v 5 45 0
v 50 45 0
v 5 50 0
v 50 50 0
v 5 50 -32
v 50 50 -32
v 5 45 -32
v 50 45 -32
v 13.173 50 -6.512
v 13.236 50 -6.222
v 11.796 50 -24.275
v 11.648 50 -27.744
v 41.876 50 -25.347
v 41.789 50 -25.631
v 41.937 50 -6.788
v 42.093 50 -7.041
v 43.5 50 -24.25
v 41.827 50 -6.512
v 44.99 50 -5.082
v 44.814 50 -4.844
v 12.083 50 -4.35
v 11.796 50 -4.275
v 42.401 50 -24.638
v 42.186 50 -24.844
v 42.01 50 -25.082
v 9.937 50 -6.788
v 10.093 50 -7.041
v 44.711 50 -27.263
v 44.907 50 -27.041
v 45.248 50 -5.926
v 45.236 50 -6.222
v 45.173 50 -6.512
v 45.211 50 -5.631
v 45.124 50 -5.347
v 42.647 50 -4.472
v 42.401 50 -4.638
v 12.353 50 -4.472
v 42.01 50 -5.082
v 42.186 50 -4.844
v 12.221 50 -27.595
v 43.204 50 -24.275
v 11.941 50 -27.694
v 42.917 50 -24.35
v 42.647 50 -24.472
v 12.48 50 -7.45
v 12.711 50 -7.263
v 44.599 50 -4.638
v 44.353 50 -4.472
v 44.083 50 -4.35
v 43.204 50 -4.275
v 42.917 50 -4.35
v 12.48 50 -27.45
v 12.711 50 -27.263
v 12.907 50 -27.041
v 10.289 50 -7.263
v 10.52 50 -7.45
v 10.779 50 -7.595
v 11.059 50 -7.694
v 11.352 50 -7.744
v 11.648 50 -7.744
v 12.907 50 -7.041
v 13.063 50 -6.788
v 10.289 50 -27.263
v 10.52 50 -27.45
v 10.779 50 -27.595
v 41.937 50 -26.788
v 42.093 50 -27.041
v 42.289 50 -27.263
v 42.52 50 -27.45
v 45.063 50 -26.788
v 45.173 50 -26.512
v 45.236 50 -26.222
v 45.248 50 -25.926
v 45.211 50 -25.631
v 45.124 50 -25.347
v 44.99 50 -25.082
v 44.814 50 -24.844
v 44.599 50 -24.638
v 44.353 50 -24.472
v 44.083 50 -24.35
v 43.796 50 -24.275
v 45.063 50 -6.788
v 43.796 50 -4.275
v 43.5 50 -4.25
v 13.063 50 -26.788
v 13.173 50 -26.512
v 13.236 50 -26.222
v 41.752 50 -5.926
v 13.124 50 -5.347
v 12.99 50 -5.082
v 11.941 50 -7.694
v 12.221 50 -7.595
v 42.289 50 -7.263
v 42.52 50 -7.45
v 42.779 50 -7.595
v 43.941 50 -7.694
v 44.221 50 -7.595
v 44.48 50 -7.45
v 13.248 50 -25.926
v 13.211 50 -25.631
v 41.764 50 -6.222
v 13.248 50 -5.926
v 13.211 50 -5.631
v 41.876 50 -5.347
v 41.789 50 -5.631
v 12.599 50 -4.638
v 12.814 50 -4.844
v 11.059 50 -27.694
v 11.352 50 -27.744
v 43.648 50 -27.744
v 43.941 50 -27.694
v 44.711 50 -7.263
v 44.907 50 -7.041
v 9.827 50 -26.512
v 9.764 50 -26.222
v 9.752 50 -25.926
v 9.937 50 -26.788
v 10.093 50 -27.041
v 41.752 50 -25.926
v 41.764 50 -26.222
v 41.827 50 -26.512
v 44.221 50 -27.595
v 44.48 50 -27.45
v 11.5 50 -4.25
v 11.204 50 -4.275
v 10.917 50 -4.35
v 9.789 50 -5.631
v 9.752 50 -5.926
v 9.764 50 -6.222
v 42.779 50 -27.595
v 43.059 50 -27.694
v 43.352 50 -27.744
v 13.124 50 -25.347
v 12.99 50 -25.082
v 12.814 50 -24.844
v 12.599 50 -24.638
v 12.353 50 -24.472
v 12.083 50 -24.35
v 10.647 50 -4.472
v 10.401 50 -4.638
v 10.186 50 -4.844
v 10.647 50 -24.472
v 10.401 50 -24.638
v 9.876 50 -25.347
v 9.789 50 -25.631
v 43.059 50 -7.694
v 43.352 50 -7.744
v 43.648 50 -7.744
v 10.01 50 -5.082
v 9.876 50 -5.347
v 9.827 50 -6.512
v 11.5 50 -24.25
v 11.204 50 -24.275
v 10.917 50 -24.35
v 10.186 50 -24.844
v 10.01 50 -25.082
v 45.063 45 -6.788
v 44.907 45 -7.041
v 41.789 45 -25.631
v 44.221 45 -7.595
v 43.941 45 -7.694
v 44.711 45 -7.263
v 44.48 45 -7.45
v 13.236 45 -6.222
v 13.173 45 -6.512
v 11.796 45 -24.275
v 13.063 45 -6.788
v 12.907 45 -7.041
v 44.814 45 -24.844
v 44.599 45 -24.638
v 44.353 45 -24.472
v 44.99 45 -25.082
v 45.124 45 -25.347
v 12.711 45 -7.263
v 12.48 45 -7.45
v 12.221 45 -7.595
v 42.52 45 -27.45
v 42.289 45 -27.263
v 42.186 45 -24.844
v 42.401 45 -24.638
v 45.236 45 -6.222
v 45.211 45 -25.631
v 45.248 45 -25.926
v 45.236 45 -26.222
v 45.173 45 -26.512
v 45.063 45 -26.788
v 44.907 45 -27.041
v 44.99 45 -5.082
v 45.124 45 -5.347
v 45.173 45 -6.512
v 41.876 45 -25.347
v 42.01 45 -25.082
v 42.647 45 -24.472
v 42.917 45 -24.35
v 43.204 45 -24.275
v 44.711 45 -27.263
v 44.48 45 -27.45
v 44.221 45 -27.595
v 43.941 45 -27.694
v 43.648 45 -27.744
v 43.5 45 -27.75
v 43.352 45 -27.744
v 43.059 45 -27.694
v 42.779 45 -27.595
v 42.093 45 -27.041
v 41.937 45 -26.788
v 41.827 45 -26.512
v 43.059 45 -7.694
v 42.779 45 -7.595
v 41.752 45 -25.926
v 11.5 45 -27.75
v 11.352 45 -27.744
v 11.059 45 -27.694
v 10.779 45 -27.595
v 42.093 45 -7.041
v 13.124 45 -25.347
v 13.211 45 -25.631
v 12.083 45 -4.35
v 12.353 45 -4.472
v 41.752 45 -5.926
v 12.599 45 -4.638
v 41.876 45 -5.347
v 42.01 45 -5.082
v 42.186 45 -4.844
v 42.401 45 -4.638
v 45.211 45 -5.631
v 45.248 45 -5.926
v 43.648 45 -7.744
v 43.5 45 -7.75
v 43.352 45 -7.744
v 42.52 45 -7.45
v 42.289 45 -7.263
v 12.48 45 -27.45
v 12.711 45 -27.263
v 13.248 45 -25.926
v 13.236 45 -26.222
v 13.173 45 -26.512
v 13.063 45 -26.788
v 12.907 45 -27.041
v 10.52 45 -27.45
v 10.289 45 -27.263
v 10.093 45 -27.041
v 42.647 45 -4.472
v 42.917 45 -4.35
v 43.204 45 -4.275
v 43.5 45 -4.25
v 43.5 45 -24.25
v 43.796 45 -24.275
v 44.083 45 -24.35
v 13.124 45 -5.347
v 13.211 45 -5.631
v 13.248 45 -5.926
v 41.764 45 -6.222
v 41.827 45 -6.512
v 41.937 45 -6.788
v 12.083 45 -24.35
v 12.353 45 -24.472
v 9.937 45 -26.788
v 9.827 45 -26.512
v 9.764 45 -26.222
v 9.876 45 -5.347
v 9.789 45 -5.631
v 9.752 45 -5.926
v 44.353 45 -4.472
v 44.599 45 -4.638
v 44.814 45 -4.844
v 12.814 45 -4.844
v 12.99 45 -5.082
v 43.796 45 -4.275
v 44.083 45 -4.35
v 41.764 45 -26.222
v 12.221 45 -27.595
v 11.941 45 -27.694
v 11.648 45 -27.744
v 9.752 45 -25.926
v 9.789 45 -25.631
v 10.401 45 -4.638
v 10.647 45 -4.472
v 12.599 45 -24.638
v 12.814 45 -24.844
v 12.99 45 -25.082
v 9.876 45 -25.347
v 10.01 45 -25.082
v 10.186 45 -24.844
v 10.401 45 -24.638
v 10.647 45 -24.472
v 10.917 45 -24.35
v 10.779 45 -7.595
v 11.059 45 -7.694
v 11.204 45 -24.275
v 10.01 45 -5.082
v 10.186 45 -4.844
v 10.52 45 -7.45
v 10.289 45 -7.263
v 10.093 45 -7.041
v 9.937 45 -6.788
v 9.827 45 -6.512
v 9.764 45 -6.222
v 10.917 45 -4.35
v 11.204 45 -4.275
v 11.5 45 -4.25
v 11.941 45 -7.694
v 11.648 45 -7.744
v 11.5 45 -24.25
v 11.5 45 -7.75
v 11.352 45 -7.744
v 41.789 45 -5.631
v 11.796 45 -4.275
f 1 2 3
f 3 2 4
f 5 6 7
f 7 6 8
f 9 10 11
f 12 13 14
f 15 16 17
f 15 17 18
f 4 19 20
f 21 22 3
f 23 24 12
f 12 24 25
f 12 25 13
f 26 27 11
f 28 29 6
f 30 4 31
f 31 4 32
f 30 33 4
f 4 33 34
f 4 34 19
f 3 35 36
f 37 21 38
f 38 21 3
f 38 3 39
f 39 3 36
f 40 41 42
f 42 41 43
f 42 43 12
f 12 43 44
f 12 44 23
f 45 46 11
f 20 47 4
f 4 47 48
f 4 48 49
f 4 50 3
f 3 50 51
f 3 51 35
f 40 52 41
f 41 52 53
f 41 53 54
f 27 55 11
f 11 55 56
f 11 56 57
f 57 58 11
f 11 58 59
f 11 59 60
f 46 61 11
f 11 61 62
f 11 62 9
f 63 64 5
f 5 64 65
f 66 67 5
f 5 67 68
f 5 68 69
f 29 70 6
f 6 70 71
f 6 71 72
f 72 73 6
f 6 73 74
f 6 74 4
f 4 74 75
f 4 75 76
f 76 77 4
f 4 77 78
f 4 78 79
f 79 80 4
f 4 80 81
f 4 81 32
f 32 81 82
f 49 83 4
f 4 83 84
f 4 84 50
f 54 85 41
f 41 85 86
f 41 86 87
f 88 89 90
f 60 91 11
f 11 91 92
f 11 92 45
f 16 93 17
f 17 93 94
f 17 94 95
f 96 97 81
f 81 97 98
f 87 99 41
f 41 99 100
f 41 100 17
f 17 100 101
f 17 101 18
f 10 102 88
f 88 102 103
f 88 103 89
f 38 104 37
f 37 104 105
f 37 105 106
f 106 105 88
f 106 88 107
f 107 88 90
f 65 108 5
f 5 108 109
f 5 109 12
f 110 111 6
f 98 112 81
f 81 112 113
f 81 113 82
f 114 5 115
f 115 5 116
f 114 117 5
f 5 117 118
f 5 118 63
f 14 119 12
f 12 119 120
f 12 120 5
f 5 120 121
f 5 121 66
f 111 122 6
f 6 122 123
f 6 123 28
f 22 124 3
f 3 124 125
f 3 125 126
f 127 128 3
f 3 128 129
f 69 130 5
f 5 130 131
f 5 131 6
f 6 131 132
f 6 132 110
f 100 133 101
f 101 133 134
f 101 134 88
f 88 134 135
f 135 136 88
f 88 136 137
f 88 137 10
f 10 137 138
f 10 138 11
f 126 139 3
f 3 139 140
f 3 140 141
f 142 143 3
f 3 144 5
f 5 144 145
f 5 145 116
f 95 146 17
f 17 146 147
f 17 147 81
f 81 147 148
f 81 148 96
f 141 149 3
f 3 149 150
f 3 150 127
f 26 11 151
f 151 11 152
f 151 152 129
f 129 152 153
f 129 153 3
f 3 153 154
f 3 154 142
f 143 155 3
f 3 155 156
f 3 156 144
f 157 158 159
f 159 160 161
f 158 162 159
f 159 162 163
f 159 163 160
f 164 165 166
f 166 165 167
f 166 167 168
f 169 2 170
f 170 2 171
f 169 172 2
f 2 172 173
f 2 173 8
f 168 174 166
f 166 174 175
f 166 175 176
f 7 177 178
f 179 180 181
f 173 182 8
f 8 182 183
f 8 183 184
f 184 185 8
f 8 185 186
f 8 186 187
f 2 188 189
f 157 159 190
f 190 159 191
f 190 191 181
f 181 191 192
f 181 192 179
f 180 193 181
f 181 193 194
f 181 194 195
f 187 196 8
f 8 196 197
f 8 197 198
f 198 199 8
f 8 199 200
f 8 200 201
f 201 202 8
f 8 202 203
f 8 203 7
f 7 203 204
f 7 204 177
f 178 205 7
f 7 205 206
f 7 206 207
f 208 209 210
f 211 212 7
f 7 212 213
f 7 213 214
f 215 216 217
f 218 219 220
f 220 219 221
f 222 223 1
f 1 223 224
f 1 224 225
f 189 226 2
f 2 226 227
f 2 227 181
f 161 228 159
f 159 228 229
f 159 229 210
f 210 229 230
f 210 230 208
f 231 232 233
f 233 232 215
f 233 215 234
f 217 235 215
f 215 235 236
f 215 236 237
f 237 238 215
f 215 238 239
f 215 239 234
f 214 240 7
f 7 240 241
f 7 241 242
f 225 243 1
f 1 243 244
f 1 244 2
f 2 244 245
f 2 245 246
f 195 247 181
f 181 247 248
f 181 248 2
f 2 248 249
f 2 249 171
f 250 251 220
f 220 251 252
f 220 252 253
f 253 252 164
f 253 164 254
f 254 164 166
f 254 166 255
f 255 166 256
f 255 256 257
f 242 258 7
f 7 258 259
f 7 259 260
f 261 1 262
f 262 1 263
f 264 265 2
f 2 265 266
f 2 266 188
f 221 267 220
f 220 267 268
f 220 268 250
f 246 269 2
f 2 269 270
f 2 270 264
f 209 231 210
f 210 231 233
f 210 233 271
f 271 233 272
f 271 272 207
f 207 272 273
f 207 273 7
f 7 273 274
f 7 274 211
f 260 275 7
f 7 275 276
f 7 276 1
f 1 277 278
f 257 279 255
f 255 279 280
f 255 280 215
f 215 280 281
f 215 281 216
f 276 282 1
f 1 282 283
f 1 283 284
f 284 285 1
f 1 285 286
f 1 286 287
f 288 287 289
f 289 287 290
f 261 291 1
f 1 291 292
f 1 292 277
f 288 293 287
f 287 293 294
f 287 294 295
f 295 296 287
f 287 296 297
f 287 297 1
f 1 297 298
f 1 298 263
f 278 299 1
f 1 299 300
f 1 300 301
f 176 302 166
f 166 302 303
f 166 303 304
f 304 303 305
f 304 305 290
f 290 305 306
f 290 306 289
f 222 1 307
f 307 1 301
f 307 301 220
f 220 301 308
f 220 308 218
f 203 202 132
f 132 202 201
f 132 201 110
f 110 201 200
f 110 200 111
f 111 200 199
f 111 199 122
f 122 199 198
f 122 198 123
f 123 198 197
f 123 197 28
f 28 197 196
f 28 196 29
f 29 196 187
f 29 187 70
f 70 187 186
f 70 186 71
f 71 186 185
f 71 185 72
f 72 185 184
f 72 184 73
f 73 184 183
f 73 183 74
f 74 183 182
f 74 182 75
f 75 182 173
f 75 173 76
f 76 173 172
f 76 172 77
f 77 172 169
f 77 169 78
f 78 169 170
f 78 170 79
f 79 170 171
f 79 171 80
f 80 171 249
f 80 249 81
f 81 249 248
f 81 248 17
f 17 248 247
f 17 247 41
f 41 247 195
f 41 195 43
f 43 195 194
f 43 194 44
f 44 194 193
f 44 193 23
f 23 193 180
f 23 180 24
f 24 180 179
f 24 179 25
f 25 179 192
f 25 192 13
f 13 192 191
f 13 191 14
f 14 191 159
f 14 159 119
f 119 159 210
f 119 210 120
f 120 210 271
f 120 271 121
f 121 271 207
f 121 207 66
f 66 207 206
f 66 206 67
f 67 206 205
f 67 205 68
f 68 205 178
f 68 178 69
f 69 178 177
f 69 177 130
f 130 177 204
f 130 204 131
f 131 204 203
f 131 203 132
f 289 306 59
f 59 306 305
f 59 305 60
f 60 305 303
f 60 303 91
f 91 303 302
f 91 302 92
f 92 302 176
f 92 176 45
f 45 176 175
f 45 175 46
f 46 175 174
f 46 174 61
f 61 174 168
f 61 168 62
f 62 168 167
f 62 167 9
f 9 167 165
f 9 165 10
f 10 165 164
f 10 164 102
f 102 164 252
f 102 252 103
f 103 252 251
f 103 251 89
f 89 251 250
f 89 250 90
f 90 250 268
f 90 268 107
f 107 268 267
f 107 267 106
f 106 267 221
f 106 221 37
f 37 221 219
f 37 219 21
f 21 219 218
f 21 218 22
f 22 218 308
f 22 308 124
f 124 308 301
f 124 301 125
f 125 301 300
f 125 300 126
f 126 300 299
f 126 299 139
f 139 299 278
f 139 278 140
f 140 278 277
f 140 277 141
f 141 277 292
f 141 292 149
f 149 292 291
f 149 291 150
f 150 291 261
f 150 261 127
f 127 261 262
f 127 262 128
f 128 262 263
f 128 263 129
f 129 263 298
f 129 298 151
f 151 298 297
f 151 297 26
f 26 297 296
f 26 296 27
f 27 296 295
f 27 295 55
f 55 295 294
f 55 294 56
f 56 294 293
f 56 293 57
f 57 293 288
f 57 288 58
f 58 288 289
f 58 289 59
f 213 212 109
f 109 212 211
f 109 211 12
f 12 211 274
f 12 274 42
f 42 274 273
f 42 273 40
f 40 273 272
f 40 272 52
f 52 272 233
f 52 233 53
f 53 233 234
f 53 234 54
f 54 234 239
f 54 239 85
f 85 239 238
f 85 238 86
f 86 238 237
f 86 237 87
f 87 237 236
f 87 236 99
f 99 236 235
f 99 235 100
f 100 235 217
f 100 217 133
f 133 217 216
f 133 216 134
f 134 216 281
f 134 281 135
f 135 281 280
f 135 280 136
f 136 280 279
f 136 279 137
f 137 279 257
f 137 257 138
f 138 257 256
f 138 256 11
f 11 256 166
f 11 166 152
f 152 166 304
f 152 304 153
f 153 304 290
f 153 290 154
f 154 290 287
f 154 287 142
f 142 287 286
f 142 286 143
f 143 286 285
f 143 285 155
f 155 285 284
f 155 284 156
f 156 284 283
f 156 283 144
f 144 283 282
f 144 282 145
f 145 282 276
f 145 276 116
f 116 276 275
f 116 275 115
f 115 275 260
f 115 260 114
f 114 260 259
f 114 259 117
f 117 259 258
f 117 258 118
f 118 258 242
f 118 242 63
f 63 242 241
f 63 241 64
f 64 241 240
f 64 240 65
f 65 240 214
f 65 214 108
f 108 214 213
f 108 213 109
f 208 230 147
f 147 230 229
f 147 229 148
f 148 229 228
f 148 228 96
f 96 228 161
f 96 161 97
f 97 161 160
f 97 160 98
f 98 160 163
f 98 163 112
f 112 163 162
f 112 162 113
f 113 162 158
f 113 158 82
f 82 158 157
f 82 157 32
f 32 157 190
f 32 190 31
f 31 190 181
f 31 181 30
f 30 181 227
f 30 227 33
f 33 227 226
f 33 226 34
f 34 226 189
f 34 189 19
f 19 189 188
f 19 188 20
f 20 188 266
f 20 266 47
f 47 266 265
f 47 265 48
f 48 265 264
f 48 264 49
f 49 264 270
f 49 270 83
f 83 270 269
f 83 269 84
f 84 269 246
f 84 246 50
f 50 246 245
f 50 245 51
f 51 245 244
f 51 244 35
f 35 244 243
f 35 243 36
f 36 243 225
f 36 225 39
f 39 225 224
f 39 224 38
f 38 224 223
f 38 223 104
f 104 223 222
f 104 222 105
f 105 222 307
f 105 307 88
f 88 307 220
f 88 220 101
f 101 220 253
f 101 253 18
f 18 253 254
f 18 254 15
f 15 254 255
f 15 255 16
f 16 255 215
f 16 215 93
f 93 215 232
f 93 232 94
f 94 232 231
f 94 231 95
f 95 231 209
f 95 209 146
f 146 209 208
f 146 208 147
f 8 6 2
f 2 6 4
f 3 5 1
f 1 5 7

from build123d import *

# Parameters (mm, degrees)
SKETCH1_W           = 55
SKETCH1_H           = 32
BOSS_EXTRUDE1_DEPTH = 50
SKETCH2_W           = 45
SKETCH2_H           = 32
CUT_EXTRUDE1_DEPTH  = 45
SKETCH3_R           = 1.75
CUT_EXTRUDE2_DEPTH  = 51
SKETCH4_R           = 1.75
CUT_EXTRUDE3_DEPTH  = 56
SKETCH5_W           = 1.1
SKETCH5_H           = 35
CUT_EXTRUDE4_DEPTH  = 1.2
SKETCH6_W           = 5
SKETCH6_H           = 32
CUT_EXTRUDE5_DEPTH  = 51


with BuildPart() as part:
    # Sketch1 → Boss-Extrude1 (new body)
    with BuildSketch(Plane(origin=(0, 0, 0), x_dir=(1, 0, 0), z_dir=(0, 1, 0))):
        with Locations((27.5, 16)):
            Rectangle(SKETCH1_W, SKETCH1_H)
    extrude(amount=BOSS_EXTRUDE1_DEPTH)

    # Sketch2 → Cut-Extrude1 (cut)
    with BuildSketch(Plane.XZ):
        with Locations((27.5, -16)):
            Rectangle(SKETCH2_W, SKETCH2_H)
    extrude(amount=-CUT_EXTRUDE1_DEPTH, mode=Mode.SUBTRACT)

    # Sketch3 → Cut-Extrude2 (cut, through all)
    with BuildSketch(Plane(origin=(0, 50, 0), x_dir=(1, 0, 0), z_dir=(0, 1, 0))):
        with Locations((43.5, 26)):
            Circle(SKETCH3_R)
        with Locations((43.5, 6)):
            Circle(SKETCH3_R)
        with Locations((11.5, 26)):
            Circle(SKETCH3_R)
        with Locations((11.5, 6)):
            Circle(SKETCH3_R)
    extrude(amount=-CUT_EXTRUDE2_DEPTH, mode=Mode.SUBTRACT)

    # Sketch4 → Cut-Extrude3 (cut, through all)
    with BuildSketch(Plane(origin=(55, 0, 0), x_dir=(0, 0, -1), z_dir=(1, 0, 0))):
        with Locations((6, 5)):
            Circle(SKETCH4_R)
        with Locations((26, 5)):
            Circle(SKETCH4_R)
    extrude(amount=-CUT_EXTRUDE3_DEPTH, mode=Mode.SUBTRACT)

    # Sketch5 → Cut-Extrude4 (cut)
    with BuildSketch(Plane.ZY.offset(-50)):
        with Locations((-29.45, 27.5)):
            Rectangle(SKETCH5_W, SKETCH5_H)
        with Locations((-31.45, 27.5)):
            Rectangle(SKETCH5_W, SKETCH5_H)
        with Locations((-27.45, 27.5)):
            Rectangle(SKETCH5_W, SKETCH5_H)
        with Locations((-25.45, 27.5)):
            Rectangle(SKETCH5_W, SKETCH5_H)
        with Locations((-23.45, 27.5)):
            Rectangle(SKETCH5_W, SKETCH5_H)
        with Locations((-21.45, 27.5)):
            Rectangle(SKETCH5_W, SKETCH5_H)
        with Locations((-19.45, 27.5)):
            Rectangle(SKETCH5_W, SKETCH5_H)
        with Locations((-17.45, 27.5)):
            Rectangle(SKETCH5_W, SKETCH5_H)
        with Locations((-15.45, 27.5)):
            Rectangle(SKETCH5_W, SKETCH5_H)
        with Locations((-13.45, 27.5)):
            Rectangle(SKETCH5_W, SKETCH5_H)
        with Locations((-11.45, 27.5)):
            Rectangle(SKETCH5_W, SKETCH5_H)
        with Locations((-9.45, 27.5)):
            Rectangle(SKETCH5_W, SKETCH5_H)
        with Locations((-7.45, 27.5)):
            Rectangle(SKETCH5_W, SKETCH5_H)
        with Locations((-5.45, 27.5)):
            Rectangle(SKETCH5_W, SKETCH5_H)
        with Locations((-3.45, 27.5)):
            Rectangle(SKETCH5_W, SKETCH5_H)
        with Locations((-1.45, 27.5)):
            Rectangle(SKETCH5_W, SKETCH5_H)
        with Locations((0.55, 27.5)):
            Rectangle(SKETCH5_W, SKETCH5_H)
    extrude(amount=-CUT_EXTRUDE4_DEPTH, mode=Mode.SUBTRACT)

    # Sketch6 → Cut-Extrude5 (cut, through all)
    with BuildSketch(Plane(origin=(0, 50, 0), x_dir=(1, 0, 0), z_dir=(0, 1, 0))):
        with Locations((52.5, 16)):
            Rectangle(SKETCH6_W, SKETCH6_H)
        with Locations((2.5, 16)):
            Rectangle(SKETCH6_W, SKETCH6_H)
    extrude(amount=-CUT_EXTRUDE5_DEPTH, mode=Mode.SUBTRACT)


solid = part.part
